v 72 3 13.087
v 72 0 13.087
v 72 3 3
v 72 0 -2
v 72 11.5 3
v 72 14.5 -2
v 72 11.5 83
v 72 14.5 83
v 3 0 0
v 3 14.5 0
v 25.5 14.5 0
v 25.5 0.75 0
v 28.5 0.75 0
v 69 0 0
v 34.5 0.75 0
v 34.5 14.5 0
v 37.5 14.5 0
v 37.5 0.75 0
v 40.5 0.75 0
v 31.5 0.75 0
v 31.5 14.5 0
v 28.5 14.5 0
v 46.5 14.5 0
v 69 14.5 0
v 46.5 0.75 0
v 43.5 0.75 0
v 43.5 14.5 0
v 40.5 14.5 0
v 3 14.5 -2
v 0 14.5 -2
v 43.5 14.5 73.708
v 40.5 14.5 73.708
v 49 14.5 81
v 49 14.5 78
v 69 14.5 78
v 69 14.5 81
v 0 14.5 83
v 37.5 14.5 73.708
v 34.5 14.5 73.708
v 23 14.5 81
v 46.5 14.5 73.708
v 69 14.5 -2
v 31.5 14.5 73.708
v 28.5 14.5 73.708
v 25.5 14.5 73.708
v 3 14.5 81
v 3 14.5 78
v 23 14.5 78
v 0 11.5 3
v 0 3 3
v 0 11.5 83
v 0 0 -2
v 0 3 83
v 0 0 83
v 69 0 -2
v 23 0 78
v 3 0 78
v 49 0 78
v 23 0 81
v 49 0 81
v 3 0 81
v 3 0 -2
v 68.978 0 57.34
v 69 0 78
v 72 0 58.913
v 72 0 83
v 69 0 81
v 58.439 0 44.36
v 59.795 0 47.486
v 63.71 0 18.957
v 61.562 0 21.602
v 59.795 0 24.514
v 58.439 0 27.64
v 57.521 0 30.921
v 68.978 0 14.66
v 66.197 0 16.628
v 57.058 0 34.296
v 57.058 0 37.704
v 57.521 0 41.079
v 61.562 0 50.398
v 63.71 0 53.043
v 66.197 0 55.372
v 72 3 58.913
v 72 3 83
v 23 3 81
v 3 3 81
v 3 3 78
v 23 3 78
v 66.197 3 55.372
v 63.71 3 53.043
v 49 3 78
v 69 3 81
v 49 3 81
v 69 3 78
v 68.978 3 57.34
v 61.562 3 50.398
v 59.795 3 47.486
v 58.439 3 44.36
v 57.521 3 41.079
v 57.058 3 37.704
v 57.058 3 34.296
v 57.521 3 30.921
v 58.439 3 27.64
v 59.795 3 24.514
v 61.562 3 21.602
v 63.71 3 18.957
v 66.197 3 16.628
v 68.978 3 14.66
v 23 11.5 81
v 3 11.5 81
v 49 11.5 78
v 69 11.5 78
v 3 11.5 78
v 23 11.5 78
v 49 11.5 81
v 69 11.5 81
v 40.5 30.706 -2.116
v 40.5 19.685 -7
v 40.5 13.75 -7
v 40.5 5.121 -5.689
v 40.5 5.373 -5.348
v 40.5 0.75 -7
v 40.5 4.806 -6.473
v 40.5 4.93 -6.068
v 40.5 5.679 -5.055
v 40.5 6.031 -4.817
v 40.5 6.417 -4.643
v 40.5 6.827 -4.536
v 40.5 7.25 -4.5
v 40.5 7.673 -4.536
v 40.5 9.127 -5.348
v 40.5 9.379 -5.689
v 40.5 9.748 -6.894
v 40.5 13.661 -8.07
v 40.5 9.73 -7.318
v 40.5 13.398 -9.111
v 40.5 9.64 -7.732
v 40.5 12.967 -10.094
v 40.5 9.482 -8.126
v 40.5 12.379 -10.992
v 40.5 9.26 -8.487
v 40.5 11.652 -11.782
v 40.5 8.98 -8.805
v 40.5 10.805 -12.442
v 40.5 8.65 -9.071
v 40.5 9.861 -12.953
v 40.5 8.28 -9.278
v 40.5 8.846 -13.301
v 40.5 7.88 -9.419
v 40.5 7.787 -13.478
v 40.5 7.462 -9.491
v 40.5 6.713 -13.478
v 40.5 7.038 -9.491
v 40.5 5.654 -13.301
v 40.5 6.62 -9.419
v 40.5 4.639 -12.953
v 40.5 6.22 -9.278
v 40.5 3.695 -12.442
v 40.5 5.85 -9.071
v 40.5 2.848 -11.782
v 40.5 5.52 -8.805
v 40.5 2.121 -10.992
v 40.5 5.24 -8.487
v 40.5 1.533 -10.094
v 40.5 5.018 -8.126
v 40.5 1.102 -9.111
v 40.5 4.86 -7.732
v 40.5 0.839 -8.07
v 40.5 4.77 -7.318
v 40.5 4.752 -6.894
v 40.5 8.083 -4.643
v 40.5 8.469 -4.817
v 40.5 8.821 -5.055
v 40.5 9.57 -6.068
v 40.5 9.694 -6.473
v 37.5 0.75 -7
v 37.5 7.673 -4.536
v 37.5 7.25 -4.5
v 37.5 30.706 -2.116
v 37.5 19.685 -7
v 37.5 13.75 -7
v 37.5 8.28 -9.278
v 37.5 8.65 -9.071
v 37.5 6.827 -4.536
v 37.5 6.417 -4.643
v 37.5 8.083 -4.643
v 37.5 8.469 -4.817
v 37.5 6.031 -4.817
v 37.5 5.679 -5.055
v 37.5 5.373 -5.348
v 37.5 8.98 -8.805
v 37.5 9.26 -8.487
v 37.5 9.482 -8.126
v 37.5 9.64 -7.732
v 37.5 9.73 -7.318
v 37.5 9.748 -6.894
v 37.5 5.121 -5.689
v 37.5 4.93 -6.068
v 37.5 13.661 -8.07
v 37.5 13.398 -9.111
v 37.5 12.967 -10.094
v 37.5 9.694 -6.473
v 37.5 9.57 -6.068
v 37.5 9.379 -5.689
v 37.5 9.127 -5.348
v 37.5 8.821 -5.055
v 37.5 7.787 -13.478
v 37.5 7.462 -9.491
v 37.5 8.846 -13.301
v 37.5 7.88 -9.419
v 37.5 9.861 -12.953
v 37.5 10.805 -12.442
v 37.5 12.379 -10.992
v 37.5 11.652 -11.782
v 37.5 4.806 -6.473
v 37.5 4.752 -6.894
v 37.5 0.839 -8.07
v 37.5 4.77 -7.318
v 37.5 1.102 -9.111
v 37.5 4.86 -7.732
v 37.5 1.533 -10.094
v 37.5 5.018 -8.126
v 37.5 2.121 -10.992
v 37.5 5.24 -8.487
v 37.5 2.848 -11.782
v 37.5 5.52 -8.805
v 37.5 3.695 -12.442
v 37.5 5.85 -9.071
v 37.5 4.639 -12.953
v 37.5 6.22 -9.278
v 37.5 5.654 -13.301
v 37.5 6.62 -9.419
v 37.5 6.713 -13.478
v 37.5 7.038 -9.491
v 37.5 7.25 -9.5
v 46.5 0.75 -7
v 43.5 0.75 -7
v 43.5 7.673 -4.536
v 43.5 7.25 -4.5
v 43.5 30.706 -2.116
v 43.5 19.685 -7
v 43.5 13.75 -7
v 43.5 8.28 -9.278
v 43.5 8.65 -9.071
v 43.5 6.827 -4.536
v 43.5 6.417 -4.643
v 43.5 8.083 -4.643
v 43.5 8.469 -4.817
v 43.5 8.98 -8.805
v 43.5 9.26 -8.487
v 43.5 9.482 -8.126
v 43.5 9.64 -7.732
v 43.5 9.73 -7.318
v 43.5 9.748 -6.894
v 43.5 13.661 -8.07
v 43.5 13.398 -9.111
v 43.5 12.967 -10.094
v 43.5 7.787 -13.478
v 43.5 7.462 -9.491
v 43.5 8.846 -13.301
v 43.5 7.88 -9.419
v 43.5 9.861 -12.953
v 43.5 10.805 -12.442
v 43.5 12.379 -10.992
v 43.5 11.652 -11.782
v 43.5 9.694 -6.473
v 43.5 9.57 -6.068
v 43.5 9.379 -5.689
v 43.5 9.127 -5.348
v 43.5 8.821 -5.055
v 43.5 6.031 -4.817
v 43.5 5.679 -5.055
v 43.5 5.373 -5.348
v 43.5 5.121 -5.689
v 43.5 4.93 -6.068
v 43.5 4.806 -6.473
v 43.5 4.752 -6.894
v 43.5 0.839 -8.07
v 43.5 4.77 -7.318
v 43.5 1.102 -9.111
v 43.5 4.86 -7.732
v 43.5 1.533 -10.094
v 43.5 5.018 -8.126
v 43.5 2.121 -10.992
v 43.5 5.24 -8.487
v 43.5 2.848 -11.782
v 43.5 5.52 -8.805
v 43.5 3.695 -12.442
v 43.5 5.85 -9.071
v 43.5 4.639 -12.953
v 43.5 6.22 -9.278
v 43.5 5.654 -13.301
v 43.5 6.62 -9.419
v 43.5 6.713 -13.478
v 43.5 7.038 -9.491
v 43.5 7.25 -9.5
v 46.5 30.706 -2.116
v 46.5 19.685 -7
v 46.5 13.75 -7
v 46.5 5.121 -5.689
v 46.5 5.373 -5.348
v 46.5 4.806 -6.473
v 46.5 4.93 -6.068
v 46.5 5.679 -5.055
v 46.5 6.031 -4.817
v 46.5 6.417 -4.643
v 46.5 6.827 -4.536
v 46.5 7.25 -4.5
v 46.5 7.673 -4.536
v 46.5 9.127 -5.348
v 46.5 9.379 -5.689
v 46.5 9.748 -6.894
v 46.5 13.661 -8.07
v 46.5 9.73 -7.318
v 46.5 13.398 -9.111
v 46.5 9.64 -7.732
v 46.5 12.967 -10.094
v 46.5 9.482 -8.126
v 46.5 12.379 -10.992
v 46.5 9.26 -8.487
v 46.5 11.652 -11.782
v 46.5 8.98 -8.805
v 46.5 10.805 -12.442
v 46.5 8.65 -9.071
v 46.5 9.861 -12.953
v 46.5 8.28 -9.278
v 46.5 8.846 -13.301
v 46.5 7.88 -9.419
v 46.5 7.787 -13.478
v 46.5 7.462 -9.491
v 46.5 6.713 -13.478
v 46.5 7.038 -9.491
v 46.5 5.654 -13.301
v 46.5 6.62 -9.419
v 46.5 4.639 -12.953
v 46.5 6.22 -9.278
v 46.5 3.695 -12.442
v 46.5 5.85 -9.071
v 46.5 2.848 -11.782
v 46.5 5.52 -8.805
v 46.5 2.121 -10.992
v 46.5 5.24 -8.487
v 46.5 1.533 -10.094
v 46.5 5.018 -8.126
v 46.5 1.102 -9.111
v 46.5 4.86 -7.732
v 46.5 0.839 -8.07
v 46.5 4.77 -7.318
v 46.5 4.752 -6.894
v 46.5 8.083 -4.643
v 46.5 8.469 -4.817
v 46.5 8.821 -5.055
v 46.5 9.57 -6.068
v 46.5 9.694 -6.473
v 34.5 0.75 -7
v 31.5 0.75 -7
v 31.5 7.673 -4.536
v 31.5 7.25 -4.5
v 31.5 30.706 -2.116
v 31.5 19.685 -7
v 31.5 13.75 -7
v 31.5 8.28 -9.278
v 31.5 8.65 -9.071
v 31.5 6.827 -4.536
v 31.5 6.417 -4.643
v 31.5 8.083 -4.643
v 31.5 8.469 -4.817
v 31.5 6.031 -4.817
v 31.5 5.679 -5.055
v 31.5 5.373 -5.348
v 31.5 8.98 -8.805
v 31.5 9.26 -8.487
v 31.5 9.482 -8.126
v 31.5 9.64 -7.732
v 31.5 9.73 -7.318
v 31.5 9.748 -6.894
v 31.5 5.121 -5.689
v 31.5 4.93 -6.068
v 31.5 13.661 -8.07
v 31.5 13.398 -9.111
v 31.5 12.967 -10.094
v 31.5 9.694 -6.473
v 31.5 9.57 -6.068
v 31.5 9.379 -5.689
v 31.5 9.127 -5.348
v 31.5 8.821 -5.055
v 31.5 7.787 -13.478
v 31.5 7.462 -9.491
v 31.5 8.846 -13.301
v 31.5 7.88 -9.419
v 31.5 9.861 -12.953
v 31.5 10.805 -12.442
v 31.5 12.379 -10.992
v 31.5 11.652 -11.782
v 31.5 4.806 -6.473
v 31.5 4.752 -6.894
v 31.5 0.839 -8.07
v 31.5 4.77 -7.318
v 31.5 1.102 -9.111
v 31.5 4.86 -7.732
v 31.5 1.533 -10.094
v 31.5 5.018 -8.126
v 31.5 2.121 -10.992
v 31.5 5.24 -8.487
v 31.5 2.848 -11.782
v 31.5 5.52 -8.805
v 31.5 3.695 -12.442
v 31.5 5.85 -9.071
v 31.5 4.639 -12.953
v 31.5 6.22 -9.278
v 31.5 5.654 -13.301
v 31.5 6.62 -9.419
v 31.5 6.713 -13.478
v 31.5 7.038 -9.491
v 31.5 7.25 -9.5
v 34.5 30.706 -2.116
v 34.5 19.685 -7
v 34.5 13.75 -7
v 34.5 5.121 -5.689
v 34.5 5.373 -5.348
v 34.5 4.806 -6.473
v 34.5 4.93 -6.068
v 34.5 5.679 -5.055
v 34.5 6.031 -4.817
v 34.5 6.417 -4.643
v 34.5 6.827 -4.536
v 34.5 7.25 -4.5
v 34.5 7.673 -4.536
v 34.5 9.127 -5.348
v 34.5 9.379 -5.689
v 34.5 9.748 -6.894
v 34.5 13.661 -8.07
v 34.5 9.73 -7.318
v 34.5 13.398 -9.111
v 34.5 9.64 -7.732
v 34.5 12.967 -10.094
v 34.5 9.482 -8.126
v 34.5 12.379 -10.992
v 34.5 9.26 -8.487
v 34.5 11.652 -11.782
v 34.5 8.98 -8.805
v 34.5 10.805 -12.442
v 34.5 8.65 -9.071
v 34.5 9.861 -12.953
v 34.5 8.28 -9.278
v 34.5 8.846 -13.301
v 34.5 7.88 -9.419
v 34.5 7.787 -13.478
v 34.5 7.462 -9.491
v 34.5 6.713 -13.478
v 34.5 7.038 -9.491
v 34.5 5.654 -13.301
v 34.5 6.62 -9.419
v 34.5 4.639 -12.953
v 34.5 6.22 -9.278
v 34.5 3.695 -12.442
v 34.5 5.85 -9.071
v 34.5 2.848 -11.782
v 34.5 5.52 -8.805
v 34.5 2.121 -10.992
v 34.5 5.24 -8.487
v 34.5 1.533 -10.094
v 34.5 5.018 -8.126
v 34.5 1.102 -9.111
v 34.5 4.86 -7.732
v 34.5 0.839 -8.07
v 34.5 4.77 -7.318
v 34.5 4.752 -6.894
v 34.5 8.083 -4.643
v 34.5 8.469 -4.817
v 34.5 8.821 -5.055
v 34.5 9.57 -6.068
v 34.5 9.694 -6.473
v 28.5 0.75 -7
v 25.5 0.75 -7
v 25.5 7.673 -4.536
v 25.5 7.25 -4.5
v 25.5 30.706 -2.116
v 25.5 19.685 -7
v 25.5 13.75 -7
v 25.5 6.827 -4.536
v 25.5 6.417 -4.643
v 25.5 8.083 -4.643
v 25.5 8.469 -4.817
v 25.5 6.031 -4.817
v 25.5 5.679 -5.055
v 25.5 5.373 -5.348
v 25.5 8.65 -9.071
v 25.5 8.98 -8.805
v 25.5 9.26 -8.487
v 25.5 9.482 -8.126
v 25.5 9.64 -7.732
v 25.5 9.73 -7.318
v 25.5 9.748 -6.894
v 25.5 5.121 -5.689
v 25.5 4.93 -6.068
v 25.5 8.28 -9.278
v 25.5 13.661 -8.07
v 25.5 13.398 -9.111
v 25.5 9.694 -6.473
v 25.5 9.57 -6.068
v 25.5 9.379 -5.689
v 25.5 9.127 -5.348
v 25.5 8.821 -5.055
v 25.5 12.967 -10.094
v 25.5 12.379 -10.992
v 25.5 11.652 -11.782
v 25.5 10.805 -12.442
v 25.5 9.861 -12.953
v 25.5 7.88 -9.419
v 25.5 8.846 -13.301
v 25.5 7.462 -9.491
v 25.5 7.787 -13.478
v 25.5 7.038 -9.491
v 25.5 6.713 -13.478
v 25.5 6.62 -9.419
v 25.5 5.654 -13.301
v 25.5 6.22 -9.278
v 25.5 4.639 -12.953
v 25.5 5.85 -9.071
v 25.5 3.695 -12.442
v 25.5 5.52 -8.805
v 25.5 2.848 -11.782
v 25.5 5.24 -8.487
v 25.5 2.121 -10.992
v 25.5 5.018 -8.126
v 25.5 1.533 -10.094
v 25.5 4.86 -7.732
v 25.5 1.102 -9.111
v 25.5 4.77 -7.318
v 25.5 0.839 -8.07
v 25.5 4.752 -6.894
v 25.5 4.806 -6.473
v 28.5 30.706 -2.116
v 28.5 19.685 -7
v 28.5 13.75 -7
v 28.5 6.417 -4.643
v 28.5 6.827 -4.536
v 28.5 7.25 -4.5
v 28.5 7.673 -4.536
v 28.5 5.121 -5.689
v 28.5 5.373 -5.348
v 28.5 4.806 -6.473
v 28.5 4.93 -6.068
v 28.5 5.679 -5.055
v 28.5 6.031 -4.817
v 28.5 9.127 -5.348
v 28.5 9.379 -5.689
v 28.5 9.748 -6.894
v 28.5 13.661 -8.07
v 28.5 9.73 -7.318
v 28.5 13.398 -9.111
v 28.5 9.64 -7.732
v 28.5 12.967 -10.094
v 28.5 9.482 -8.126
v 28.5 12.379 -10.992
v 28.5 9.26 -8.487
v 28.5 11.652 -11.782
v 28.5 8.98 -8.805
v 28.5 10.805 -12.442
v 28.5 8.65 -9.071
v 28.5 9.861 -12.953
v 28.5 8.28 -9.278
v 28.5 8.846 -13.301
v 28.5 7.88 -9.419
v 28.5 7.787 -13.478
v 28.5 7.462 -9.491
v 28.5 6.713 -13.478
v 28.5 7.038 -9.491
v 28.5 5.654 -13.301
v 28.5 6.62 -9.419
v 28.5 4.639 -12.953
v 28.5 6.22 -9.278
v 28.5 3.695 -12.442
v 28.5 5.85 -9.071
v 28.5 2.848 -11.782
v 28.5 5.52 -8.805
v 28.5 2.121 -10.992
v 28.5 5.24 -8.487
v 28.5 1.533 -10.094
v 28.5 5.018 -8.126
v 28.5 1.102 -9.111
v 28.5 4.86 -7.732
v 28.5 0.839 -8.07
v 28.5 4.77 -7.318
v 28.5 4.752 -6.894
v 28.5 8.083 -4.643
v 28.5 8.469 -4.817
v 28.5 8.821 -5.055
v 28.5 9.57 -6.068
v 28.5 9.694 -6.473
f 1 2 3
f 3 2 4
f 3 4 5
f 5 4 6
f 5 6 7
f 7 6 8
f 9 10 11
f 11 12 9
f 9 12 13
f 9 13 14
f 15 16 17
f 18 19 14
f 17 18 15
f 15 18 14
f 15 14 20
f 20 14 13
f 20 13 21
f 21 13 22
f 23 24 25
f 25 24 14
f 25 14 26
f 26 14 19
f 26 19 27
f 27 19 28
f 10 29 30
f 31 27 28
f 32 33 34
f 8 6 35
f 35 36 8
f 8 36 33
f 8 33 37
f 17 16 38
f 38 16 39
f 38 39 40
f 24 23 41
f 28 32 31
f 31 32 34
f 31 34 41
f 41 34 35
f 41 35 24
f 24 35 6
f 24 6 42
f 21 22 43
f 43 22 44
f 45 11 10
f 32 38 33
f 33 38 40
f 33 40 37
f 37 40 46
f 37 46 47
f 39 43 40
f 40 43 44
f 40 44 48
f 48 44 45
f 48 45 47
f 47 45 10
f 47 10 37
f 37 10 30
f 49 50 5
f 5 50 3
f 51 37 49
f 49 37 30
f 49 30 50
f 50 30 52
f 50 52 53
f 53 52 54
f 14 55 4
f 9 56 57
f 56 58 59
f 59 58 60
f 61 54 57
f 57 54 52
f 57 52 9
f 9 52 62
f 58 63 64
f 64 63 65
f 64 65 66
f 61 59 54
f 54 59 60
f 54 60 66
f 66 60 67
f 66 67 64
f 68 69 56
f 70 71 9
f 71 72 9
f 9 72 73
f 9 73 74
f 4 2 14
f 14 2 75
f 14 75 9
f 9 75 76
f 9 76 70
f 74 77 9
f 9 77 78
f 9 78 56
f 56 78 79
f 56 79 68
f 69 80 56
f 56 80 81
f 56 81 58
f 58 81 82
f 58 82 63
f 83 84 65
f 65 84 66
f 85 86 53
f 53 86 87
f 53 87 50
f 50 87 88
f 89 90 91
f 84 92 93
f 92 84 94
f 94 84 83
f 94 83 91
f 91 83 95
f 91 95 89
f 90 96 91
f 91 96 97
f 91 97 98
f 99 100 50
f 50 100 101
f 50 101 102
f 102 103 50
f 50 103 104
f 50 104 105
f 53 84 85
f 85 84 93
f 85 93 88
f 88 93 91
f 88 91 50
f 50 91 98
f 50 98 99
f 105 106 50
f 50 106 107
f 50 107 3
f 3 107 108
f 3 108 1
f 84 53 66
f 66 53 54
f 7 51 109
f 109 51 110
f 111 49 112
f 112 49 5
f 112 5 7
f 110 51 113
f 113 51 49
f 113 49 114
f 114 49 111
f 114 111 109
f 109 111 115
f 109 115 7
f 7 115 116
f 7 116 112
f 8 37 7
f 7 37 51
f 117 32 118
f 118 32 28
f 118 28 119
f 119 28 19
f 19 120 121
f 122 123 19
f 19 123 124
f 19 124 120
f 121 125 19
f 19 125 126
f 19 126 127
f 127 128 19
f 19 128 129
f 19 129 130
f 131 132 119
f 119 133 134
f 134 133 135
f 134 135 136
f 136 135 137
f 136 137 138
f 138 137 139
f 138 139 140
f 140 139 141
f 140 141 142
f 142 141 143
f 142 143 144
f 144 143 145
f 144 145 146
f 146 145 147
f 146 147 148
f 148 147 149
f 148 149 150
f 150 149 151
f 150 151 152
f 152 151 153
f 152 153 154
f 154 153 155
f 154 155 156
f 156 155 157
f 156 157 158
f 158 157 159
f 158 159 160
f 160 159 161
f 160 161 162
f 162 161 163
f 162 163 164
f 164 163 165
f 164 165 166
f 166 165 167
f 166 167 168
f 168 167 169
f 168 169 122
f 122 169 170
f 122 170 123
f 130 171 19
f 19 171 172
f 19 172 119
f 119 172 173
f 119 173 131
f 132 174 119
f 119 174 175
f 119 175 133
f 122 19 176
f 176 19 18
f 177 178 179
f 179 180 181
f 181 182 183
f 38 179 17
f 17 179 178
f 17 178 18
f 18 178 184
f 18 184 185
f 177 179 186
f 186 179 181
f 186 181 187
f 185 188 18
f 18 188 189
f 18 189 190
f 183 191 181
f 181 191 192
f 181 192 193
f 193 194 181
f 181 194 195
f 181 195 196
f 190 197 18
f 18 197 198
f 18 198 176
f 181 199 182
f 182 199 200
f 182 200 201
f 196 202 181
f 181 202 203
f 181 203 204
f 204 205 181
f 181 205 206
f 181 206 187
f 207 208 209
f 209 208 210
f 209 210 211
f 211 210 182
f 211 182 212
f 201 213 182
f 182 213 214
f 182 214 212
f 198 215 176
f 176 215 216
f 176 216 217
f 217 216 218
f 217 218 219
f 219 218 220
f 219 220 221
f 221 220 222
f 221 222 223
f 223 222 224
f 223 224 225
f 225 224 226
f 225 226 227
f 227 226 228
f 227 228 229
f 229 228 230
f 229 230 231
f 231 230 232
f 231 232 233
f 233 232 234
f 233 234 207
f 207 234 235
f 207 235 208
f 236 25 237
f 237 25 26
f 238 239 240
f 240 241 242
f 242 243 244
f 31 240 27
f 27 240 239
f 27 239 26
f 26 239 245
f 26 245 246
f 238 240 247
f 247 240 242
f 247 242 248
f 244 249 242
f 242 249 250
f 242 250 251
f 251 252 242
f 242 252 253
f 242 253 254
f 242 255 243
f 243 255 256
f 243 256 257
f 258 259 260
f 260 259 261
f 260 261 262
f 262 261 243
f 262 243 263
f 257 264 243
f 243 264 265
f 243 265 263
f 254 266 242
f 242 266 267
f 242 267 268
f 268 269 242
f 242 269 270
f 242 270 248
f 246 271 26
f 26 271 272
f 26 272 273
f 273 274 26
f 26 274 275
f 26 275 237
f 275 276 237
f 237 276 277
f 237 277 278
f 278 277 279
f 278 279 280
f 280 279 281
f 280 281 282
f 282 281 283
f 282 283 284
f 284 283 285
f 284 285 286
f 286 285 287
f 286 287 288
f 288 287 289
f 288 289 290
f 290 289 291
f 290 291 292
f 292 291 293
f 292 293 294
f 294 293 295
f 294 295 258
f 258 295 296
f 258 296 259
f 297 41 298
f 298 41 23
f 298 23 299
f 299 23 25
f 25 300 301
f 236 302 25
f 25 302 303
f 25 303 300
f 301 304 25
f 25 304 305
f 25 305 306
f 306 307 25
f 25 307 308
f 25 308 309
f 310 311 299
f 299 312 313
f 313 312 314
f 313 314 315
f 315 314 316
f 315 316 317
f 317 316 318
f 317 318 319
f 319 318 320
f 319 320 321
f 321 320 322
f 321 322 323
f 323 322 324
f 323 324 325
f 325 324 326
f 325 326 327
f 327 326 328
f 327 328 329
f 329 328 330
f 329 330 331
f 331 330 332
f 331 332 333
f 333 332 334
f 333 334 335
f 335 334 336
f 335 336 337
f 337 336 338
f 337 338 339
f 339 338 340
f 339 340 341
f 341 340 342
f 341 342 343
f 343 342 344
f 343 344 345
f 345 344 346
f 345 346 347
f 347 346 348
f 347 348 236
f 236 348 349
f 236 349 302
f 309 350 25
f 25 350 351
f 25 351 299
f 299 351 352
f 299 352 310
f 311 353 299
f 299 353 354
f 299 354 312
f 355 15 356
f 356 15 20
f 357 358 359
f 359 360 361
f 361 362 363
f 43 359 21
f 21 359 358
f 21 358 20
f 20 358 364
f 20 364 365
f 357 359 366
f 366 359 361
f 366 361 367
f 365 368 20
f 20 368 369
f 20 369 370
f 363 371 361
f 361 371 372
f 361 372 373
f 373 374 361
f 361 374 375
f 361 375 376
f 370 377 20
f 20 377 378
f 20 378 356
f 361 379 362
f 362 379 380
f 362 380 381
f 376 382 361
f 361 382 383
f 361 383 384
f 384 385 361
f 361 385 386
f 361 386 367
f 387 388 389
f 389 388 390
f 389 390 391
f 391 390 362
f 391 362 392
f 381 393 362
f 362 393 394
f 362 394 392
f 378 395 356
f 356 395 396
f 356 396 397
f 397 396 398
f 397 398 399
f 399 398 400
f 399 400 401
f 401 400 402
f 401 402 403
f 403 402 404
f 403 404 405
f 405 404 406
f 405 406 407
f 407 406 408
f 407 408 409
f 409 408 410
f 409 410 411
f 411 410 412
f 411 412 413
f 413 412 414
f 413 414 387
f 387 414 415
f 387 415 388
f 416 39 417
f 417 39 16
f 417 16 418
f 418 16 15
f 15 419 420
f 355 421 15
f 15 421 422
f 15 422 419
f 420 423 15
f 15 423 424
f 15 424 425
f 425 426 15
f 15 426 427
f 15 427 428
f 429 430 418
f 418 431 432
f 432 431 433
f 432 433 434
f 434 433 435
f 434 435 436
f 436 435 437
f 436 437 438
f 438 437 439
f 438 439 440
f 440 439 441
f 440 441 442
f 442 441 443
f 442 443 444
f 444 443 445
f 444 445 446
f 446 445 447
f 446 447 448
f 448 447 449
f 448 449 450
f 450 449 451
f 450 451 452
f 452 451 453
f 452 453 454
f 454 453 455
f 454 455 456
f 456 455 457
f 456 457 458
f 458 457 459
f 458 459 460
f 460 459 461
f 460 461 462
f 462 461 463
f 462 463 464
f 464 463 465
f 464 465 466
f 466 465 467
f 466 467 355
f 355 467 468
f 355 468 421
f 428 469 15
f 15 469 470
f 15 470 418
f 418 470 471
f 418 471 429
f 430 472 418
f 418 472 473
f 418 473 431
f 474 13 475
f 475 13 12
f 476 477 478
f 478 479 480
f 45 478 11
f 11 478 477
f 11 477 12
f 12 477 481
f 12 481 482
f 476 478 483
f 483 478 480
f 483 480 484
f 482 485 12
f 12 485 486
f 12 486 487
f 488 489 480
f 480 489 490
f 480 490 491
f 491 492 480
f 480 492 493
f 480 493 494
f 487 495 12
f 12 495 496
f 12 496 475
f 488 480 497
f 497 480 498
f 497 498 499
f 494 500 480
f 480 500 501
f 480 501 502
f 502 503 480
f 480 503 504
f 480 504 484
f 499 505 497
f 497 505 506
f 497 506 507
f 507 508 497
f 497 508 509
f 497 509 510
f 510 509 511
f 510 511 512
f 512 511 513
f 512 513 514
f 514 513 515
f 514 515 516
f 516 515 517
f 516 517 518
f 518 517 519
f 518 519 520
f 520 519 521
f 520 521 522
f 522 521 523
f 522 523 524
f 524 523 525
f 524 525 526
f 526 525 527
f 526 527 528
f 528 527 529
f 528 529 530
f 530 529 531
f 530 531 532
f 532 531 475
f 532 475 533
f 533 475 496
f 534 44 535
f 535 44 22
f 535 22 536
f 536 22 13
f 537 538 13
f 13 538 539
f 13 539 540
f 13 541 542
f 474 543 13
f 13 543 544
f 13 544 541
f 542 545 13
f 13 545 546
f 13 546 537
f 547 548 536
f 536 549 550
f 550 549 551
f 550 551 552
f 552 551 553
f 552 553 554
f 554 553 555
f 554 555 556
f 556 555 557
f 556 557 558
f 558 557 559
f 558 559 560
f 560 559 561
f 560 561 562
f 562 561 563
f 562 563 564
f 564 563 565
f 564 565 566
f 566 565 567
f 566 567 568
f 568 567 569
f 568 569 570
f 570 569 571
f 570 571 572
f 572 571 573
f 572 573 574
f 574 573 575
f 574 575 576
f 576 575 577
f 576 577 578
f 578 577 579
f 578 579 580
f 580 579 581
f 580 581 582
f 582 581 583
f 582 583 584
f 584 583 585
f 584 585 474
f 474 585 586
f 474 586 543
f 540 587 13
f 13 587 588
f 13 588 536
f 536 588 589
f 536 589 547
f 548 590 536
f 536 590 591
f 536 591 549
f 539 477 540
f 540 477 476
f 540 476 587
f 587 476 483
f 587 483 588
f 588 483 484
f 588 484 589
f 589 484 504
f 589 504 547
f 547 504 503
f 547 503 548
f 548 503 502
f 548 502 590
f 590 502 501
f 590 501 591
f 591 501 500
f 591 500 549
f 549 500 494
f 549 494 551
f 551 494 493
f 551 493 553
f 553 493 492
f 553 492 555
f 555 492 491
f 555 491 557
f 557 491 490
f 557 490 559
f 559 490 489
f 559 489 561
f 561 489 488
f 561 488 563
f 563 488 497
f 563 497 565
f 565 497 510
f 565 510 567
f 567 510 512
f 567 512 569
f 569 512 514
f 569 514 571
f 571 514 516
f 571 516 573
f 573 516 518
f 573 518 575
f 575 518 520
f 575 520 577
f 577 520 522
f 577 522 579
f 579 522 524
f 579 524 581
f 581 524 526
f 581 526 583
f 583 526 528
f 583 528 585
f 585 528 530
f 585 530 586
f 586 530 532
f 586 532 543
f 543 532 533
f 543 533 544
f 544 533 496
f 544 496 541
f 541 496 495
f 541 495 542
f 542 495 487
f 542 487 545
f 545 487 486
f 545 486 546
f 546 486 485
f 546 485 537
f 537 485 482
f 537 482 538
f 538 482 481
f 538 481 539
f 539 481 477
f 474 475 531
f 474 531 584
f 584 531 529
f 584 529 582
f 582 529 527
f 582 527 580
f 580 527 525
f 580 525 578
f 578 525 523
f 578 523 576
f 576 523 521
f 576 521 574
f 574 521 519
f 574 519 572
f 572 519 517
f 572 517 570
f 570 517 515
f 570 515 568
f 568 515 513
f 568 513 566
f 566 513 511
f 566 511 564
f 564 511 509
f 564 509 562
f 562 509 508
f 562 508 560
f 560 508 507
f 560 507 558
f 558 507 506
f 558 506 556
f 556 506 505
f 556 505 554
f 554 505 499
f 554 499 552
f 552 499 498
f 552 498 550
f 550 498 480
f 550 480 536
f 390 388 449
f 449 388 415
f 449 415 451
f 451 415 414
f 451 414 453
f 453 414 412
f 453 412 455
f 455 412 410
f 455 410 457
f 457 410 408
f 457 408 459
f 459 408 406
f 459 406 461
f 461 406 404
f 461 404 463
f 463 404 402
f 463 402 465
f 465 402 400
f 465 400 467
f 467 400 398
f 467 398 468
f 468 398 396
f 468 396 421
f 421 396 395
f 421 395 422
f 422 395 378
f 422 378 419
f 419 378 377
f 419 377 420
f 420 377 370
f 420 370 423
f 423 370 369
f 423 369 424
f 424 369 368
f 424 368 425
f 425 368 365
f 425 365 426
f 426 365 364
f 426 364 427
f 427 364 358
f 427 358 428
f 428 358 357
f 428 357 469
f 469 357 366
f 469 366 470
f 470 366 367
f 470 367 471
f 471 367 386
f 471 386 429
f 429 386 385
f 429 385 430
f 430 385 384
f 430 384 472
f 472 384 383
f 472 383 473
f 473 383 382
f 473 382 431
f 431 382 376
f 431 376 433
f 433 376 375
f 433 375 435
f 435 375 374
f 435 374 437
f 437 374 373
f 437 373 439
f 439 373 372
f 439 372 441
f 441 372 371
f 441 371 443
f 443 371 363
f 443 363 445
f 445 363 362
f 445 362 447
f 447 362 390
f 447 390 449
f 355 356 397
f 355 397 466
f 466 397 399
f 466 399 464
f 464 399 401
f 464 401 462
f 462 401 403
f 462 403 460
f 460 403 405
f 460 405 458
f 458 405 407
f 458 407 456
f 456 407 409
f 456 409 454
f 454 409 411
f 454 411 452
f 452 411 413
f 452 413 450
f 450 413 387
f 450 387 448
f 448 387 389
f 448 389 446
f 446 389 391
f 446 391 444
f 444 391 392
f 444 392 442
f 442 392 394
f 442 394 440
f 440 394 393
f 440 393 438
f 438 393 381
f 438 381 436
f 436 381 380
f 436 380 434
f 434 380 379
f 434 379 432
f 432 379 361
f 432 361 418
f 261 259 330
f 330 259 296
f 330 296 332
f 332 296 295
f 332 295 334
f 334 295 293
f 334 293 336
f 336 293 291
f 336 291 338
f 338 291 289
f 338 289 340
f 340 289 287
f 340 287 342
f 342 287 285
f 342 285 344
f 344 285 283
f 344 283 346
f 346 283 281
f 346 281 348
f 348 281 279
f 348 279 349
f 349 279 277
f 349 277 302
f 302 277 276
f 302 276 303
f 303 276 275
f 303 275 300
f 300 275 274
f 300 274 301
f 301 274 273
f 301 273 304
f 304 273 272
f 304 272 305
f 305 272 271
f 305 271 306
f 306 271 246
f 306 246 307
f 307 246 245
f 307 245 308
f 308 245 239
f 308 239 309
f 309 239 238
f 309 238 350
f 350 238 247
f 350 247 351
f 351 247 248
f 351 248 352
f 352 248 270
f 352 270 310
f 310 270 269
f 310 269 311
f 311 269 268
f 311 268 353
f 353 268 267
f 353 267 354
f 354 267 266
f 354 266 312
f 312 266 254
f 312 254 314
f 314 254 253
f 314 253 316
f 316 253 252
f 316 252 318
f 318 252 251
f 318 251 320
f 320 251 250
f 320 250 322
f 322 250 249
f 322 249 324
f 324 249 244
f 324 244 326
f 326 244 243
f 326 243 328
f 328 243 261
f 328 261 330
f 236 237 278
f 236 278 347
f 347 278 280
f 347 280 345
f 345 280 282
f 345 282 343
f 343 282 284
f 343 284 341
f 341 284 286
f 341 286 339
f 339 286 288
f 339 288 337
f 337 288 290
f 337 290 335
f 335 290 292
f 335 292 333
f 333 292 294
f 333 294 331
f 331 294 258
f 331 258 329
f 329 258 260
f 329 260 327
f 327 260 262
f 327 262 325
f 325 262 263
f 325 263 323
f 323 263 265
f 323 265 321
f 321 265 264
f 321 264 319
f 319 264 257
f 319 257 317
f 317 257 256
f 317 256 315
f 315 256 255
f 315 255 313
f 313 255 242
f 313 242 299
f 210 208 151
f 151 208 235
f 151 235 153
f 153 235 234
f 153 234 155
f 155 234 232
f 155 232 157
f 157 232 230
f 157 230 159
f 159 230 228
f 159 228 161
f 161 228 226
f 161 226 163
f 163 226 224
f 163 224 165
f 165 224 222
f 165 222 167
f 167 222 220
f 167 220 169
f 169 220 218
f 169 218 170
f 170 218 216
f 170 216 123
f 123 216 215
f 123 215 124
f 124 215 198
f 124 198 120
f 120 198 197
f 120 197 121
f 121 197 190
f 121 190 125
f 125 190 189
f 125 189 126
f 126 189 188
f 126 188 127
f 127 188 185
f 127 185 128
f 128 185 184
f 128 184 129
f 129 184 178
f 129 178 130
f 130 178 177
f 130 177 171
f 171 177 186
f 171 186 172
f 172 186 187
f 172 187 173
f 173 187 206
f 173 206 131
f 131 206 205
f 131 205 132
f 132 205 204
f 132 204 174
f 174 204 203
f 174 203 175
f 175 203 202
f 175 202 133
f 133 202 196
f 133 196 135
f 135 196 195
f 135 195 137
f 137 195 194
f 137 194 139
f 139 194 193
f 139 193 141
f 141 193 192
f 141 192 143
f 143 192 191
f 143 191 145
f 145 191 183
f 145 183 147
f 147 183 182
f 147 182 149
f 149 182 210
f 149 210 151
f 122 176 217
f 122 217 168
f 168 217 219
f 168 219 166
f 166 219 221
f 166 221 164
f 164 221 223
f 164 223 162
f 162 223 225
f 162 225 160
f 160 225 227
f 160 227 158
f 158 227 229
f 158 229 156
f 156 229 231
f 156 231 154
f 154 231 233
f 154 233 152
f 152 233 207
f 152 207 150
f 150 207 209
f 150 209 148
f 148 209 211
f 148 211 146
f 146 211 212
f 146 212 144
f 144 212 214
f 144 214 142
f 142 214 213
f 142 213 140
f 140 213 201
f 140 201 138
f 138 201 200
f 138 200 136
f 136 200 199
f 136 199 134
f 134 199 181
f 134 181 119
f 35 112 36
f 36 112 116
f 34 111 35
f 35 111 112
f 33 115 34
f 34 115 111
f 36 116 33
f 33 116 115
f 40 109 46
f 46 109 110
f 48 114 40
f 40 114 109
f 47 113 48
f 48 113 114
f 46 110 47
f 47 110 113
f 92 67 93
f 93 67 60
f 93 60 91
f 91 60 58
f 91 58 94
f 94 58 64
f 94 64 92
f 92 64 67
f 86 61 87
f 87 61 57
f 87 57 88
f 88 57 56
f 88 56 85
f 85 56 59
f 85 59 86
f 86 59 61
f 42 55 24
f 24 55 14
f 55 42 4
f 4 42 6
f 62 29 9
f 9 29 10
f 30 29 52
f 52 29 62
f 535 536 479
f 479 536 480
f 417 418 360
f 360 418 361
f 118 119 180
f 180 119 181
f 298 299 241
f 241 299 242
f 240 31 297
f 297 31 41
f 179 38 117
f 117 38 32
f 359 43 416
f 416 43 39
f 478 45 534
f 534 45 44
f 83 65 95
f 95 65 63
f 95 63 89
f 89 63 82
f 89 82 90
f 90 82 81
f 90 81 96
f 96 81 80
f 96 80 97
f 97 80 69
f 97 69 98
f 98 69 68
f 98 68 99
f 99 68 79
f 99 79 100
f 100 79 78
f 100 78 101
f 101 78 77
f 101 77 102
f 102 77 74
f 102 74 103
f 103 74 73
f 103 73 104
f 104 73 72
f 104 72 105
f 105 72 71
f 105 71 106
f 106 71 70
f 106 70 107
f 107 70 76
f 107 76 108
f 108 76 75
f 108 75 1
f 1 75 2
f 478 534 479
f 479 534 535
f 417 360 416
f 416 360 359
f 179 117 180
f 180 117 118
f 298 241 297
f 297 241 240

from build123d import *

# Parameters (mm, degrees)
SKETCH_1_W          = 72
SKETCH_1_H          = 14.5
EXTRUDE_1_DEPTH     = 3
SKETCH_2_W          = 72
SKETCH_2_H          = 3
EXTRUDE_2_DEPTH     = 80
SKETCH_3_W          = 3
SKETCH_3_H          = 13
EXTRUDE_3_DEPTH     = 13.5
SKETCH_4_R          = 2.5
CUT_EXTRUDE_1_DEPTH = 21
SKETCH_5_W          = 20
SKETCH_5_H          = 3
CUT_EXTRUDE_2_DEPTH = 21
SKETCH_6_W          = 3
SKETCH_6_H          = 14.5
EXTRUDE_5_DEPTH     = 2
SKETCH_8_W          = 3
SKETCH_8_H          = 80.708275322
EXTRUDE_6_DEPTH     = 18
CUT_EXTRUDE_3_DEPTH = 21
SKETCH_12_R         = 25
CUT_EXTRUDE_5_DEPTH = 8
CUT_EXTRUDE_6_DEPTH = 31


with BuildPart() as part:
    # 草图1 → 凸台-拉伸1 (new body)
    with BuildSketch(Plane.XY):
        with Locations((36, 7.25)):
            Rectangle(SKETCH_1_W, SKETCH_1_H)
    extrude(amount=EXTRUDE_1_DEPTH)

    # 草图2 → 凸台-拉伸2 (add)
    with BuildSketch(Plane.XY.offset(3)):
        with Locations((36, 1.5)):
            Rectangle(SKETCH_2_W, SKETCH_2_H)
        with Locations((36, 13)):
            Rectangle(SKETCH_2_W, SKETCH_2_H)
    extrude(amount=EXTRUDE_2_DEPTH)

    # 草图3 → 凸台-拉伸3 (add)
    with BuildSketch(Plane(origin=(0, 0, 0), x_dir=(-1, 0, 0), z_dir=(0, 0, -1))):
        with Locations((-39, 7.25)):
            Rectangle(SKETCH_3_W, SKETCH_3_H)
        Polygon((-43.5, 0.75), (-43.5, 7.25), (-43.5, 13.75), (-46.5, 13.75), (-46.5, 0.75), align=None)
        with Locations((-33, 7.25)):
            Rectangle(SKETCH_3_W, SKETCH_3_H)
        Polygon((-28.5, 7.25), (-28.5, 13.75), (-25.5, 13.75), (-25.5, 0.75), (-28.5, 0.75), align=None)
    extrude(amount=EXTRUDE_3_DEPTH)

    # 草图4 → 切除-拉伸1 (cut)
    with BuildSketch(Plane.ZY.offset(-25.5)):
        with Locations((-7, 7.25)):
            Circle(SKETCH_4_R)
        with BuildLine():
            Line((-7, 0.75), (-7, -0.932690229))
            Line((-7, -0.932690229), (-15.150689601, -0.932690229))
            Line((-15.150689601, -0.932690229), (-15.150689601, 14.849085894))
            Line((-15.150689601, 14.849085894), (-7, 13.75))
            ThreePointArc((-7, 13.75), (-13.5, 7.25), (-7, 0.75))
        make_face()
    extrude(amount=-CUT_EXTRUDE_1_DEPTH, mode=Mode.SUBTRACT)

    # 草图5 → 切除-拉伸2 (cut)
    with BuildSketch(Plane(origin=(0, 14.5, 0), x_dir=(1, 0, 0), z_dir=(0, 1, 0))):
        with Locations((13, -79.5)):
            Rectangle(SKETCH_5_W, SKETCH_5_H)
        with Locations((59, -79.5)):
            Rectangle(SKETCH_5_W, SKETCH_5_H)
    extrude(amount=-CUT_EXTRUDE_2_DEPTH, mode=Mode.SUBTRACT)

    # 草图6 → 凸台-拉伸5 (add)
    with BuildSketch(Plane(origin=(0, 0, 0), x_dir=(-1, 0, 0), z_dir=(0, 0, -1))):
        with Locations((-70.5, 7.25)):
            Rectangle(SKETCH_6_W, SKETCH_6_H)
        with Locations((-1.5, 7.25)):
            Rectangle(SKETCH_6_W, SKETCH_6_H)
    extrude(amount=EXTRUDE_5_DEPTH)

    # 草图8 → 凸台-拉伸6 (add)
    with BuildSketch(Plane(origin=(0, 13.75, 0), x_dir=(1, 0, 0), z_dir=(0, 1, 0))):
        with Locations((27, -33.354137661)):
            Rectangle(SKETCH_8_W, SKETCH_8_H)
        with Locations((33, -33.354137661)):
            Rectangle(SKETCH_8_W, SKETCH_8_H)
        with Locations((39, -33.354137661)):
            Rectangle(SKETCH_8_W, SKETCH_8_H)
        with Locations((45, -33.354137661)):
            Rectangle(SKETCH_8_W, SKETCH_8_H)
    extrude(amount=EXTRUDE_6_DEPTH)

    # 草图9 → 切除-拉伸3 (cut)
    with BuildSketch(Plane.ZY.offset(-25.5)):
        Polygon((-7, 31.75), (73.708275322, 14.5), (73.708275322, 31.75), align=None)
    extrude(amount=-CUT_EXTRUDE_3_DEPTH, mode=Mode.SUBTRACT)

    # 草图12 → 切除-拉伸5 (cut)
    with BuildSketch(Plane.XZ):
        with Locations((82, 36)):
            Circle(SKETCH_12_R)
    extrude(amount=-CUT_EXTRUDE_5_DEPTH, mode=Mode.SUBTRACT)

    # 草图13 → 切除-拉伸6 (cut)
    with BuildSketch(Plane.ZY.offset(-25.5)):
        Polygon((-7, 19.685447093), (-2.115986675, 30.7061265), (-3.141307931, 37.349064324), (-11.498288127, 31.75), align=None)
    extrude(amount=-CUT_EXTRUDE_6_DEPTH, mode=Mode.SUBTRACT)


solid = part.part
